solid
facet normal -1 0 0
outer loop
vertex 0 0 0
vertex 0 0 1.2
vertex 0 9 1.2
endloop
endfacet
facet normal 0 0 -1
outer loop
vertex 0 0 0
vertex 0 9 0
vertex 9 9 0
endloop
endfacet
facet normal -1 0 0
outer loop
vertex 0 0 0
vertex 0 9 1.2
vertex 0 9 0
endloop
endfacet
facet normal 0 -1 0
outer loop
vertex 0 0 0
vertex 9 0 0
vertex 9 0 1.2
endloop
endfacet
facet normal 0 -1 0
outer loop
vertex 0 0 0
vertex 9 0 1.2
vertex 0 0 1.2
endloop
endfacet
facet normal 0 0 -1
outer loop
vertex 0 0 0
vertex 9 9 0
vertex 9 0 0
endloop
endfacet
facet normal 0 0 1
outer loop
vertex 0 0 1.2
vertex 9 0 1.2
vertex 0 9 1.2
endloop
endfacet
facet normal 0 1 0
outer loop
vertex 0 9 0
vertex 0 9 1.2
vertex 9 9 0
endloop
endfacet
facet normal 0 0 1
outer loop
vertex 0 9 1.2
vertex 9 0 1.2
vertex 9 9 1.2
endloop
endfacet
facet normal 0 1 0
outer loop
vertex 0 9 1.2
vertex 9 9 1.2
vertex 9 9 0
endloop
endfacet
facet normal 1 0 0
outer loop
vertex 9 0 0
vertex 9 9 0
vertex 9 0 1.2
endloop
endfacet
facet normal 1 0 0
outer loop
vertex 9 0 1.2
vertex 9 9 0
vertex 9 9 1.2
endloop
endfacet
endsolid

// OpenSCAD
/* Warning, this is a very basic generator with a lot of approximation 
input data : [TFBGA, 7EW, 9x9x1.2mm, 375, , A, C04-00644A]
generated by com.zoubworld.electronics.cad.model3d.Basic
Date : Sun Feb 15 10:50:49 CET 2026
*/

//body
color("black")
translate([0,0,0])
cube([9.0,9.0,1.2], center=false);
